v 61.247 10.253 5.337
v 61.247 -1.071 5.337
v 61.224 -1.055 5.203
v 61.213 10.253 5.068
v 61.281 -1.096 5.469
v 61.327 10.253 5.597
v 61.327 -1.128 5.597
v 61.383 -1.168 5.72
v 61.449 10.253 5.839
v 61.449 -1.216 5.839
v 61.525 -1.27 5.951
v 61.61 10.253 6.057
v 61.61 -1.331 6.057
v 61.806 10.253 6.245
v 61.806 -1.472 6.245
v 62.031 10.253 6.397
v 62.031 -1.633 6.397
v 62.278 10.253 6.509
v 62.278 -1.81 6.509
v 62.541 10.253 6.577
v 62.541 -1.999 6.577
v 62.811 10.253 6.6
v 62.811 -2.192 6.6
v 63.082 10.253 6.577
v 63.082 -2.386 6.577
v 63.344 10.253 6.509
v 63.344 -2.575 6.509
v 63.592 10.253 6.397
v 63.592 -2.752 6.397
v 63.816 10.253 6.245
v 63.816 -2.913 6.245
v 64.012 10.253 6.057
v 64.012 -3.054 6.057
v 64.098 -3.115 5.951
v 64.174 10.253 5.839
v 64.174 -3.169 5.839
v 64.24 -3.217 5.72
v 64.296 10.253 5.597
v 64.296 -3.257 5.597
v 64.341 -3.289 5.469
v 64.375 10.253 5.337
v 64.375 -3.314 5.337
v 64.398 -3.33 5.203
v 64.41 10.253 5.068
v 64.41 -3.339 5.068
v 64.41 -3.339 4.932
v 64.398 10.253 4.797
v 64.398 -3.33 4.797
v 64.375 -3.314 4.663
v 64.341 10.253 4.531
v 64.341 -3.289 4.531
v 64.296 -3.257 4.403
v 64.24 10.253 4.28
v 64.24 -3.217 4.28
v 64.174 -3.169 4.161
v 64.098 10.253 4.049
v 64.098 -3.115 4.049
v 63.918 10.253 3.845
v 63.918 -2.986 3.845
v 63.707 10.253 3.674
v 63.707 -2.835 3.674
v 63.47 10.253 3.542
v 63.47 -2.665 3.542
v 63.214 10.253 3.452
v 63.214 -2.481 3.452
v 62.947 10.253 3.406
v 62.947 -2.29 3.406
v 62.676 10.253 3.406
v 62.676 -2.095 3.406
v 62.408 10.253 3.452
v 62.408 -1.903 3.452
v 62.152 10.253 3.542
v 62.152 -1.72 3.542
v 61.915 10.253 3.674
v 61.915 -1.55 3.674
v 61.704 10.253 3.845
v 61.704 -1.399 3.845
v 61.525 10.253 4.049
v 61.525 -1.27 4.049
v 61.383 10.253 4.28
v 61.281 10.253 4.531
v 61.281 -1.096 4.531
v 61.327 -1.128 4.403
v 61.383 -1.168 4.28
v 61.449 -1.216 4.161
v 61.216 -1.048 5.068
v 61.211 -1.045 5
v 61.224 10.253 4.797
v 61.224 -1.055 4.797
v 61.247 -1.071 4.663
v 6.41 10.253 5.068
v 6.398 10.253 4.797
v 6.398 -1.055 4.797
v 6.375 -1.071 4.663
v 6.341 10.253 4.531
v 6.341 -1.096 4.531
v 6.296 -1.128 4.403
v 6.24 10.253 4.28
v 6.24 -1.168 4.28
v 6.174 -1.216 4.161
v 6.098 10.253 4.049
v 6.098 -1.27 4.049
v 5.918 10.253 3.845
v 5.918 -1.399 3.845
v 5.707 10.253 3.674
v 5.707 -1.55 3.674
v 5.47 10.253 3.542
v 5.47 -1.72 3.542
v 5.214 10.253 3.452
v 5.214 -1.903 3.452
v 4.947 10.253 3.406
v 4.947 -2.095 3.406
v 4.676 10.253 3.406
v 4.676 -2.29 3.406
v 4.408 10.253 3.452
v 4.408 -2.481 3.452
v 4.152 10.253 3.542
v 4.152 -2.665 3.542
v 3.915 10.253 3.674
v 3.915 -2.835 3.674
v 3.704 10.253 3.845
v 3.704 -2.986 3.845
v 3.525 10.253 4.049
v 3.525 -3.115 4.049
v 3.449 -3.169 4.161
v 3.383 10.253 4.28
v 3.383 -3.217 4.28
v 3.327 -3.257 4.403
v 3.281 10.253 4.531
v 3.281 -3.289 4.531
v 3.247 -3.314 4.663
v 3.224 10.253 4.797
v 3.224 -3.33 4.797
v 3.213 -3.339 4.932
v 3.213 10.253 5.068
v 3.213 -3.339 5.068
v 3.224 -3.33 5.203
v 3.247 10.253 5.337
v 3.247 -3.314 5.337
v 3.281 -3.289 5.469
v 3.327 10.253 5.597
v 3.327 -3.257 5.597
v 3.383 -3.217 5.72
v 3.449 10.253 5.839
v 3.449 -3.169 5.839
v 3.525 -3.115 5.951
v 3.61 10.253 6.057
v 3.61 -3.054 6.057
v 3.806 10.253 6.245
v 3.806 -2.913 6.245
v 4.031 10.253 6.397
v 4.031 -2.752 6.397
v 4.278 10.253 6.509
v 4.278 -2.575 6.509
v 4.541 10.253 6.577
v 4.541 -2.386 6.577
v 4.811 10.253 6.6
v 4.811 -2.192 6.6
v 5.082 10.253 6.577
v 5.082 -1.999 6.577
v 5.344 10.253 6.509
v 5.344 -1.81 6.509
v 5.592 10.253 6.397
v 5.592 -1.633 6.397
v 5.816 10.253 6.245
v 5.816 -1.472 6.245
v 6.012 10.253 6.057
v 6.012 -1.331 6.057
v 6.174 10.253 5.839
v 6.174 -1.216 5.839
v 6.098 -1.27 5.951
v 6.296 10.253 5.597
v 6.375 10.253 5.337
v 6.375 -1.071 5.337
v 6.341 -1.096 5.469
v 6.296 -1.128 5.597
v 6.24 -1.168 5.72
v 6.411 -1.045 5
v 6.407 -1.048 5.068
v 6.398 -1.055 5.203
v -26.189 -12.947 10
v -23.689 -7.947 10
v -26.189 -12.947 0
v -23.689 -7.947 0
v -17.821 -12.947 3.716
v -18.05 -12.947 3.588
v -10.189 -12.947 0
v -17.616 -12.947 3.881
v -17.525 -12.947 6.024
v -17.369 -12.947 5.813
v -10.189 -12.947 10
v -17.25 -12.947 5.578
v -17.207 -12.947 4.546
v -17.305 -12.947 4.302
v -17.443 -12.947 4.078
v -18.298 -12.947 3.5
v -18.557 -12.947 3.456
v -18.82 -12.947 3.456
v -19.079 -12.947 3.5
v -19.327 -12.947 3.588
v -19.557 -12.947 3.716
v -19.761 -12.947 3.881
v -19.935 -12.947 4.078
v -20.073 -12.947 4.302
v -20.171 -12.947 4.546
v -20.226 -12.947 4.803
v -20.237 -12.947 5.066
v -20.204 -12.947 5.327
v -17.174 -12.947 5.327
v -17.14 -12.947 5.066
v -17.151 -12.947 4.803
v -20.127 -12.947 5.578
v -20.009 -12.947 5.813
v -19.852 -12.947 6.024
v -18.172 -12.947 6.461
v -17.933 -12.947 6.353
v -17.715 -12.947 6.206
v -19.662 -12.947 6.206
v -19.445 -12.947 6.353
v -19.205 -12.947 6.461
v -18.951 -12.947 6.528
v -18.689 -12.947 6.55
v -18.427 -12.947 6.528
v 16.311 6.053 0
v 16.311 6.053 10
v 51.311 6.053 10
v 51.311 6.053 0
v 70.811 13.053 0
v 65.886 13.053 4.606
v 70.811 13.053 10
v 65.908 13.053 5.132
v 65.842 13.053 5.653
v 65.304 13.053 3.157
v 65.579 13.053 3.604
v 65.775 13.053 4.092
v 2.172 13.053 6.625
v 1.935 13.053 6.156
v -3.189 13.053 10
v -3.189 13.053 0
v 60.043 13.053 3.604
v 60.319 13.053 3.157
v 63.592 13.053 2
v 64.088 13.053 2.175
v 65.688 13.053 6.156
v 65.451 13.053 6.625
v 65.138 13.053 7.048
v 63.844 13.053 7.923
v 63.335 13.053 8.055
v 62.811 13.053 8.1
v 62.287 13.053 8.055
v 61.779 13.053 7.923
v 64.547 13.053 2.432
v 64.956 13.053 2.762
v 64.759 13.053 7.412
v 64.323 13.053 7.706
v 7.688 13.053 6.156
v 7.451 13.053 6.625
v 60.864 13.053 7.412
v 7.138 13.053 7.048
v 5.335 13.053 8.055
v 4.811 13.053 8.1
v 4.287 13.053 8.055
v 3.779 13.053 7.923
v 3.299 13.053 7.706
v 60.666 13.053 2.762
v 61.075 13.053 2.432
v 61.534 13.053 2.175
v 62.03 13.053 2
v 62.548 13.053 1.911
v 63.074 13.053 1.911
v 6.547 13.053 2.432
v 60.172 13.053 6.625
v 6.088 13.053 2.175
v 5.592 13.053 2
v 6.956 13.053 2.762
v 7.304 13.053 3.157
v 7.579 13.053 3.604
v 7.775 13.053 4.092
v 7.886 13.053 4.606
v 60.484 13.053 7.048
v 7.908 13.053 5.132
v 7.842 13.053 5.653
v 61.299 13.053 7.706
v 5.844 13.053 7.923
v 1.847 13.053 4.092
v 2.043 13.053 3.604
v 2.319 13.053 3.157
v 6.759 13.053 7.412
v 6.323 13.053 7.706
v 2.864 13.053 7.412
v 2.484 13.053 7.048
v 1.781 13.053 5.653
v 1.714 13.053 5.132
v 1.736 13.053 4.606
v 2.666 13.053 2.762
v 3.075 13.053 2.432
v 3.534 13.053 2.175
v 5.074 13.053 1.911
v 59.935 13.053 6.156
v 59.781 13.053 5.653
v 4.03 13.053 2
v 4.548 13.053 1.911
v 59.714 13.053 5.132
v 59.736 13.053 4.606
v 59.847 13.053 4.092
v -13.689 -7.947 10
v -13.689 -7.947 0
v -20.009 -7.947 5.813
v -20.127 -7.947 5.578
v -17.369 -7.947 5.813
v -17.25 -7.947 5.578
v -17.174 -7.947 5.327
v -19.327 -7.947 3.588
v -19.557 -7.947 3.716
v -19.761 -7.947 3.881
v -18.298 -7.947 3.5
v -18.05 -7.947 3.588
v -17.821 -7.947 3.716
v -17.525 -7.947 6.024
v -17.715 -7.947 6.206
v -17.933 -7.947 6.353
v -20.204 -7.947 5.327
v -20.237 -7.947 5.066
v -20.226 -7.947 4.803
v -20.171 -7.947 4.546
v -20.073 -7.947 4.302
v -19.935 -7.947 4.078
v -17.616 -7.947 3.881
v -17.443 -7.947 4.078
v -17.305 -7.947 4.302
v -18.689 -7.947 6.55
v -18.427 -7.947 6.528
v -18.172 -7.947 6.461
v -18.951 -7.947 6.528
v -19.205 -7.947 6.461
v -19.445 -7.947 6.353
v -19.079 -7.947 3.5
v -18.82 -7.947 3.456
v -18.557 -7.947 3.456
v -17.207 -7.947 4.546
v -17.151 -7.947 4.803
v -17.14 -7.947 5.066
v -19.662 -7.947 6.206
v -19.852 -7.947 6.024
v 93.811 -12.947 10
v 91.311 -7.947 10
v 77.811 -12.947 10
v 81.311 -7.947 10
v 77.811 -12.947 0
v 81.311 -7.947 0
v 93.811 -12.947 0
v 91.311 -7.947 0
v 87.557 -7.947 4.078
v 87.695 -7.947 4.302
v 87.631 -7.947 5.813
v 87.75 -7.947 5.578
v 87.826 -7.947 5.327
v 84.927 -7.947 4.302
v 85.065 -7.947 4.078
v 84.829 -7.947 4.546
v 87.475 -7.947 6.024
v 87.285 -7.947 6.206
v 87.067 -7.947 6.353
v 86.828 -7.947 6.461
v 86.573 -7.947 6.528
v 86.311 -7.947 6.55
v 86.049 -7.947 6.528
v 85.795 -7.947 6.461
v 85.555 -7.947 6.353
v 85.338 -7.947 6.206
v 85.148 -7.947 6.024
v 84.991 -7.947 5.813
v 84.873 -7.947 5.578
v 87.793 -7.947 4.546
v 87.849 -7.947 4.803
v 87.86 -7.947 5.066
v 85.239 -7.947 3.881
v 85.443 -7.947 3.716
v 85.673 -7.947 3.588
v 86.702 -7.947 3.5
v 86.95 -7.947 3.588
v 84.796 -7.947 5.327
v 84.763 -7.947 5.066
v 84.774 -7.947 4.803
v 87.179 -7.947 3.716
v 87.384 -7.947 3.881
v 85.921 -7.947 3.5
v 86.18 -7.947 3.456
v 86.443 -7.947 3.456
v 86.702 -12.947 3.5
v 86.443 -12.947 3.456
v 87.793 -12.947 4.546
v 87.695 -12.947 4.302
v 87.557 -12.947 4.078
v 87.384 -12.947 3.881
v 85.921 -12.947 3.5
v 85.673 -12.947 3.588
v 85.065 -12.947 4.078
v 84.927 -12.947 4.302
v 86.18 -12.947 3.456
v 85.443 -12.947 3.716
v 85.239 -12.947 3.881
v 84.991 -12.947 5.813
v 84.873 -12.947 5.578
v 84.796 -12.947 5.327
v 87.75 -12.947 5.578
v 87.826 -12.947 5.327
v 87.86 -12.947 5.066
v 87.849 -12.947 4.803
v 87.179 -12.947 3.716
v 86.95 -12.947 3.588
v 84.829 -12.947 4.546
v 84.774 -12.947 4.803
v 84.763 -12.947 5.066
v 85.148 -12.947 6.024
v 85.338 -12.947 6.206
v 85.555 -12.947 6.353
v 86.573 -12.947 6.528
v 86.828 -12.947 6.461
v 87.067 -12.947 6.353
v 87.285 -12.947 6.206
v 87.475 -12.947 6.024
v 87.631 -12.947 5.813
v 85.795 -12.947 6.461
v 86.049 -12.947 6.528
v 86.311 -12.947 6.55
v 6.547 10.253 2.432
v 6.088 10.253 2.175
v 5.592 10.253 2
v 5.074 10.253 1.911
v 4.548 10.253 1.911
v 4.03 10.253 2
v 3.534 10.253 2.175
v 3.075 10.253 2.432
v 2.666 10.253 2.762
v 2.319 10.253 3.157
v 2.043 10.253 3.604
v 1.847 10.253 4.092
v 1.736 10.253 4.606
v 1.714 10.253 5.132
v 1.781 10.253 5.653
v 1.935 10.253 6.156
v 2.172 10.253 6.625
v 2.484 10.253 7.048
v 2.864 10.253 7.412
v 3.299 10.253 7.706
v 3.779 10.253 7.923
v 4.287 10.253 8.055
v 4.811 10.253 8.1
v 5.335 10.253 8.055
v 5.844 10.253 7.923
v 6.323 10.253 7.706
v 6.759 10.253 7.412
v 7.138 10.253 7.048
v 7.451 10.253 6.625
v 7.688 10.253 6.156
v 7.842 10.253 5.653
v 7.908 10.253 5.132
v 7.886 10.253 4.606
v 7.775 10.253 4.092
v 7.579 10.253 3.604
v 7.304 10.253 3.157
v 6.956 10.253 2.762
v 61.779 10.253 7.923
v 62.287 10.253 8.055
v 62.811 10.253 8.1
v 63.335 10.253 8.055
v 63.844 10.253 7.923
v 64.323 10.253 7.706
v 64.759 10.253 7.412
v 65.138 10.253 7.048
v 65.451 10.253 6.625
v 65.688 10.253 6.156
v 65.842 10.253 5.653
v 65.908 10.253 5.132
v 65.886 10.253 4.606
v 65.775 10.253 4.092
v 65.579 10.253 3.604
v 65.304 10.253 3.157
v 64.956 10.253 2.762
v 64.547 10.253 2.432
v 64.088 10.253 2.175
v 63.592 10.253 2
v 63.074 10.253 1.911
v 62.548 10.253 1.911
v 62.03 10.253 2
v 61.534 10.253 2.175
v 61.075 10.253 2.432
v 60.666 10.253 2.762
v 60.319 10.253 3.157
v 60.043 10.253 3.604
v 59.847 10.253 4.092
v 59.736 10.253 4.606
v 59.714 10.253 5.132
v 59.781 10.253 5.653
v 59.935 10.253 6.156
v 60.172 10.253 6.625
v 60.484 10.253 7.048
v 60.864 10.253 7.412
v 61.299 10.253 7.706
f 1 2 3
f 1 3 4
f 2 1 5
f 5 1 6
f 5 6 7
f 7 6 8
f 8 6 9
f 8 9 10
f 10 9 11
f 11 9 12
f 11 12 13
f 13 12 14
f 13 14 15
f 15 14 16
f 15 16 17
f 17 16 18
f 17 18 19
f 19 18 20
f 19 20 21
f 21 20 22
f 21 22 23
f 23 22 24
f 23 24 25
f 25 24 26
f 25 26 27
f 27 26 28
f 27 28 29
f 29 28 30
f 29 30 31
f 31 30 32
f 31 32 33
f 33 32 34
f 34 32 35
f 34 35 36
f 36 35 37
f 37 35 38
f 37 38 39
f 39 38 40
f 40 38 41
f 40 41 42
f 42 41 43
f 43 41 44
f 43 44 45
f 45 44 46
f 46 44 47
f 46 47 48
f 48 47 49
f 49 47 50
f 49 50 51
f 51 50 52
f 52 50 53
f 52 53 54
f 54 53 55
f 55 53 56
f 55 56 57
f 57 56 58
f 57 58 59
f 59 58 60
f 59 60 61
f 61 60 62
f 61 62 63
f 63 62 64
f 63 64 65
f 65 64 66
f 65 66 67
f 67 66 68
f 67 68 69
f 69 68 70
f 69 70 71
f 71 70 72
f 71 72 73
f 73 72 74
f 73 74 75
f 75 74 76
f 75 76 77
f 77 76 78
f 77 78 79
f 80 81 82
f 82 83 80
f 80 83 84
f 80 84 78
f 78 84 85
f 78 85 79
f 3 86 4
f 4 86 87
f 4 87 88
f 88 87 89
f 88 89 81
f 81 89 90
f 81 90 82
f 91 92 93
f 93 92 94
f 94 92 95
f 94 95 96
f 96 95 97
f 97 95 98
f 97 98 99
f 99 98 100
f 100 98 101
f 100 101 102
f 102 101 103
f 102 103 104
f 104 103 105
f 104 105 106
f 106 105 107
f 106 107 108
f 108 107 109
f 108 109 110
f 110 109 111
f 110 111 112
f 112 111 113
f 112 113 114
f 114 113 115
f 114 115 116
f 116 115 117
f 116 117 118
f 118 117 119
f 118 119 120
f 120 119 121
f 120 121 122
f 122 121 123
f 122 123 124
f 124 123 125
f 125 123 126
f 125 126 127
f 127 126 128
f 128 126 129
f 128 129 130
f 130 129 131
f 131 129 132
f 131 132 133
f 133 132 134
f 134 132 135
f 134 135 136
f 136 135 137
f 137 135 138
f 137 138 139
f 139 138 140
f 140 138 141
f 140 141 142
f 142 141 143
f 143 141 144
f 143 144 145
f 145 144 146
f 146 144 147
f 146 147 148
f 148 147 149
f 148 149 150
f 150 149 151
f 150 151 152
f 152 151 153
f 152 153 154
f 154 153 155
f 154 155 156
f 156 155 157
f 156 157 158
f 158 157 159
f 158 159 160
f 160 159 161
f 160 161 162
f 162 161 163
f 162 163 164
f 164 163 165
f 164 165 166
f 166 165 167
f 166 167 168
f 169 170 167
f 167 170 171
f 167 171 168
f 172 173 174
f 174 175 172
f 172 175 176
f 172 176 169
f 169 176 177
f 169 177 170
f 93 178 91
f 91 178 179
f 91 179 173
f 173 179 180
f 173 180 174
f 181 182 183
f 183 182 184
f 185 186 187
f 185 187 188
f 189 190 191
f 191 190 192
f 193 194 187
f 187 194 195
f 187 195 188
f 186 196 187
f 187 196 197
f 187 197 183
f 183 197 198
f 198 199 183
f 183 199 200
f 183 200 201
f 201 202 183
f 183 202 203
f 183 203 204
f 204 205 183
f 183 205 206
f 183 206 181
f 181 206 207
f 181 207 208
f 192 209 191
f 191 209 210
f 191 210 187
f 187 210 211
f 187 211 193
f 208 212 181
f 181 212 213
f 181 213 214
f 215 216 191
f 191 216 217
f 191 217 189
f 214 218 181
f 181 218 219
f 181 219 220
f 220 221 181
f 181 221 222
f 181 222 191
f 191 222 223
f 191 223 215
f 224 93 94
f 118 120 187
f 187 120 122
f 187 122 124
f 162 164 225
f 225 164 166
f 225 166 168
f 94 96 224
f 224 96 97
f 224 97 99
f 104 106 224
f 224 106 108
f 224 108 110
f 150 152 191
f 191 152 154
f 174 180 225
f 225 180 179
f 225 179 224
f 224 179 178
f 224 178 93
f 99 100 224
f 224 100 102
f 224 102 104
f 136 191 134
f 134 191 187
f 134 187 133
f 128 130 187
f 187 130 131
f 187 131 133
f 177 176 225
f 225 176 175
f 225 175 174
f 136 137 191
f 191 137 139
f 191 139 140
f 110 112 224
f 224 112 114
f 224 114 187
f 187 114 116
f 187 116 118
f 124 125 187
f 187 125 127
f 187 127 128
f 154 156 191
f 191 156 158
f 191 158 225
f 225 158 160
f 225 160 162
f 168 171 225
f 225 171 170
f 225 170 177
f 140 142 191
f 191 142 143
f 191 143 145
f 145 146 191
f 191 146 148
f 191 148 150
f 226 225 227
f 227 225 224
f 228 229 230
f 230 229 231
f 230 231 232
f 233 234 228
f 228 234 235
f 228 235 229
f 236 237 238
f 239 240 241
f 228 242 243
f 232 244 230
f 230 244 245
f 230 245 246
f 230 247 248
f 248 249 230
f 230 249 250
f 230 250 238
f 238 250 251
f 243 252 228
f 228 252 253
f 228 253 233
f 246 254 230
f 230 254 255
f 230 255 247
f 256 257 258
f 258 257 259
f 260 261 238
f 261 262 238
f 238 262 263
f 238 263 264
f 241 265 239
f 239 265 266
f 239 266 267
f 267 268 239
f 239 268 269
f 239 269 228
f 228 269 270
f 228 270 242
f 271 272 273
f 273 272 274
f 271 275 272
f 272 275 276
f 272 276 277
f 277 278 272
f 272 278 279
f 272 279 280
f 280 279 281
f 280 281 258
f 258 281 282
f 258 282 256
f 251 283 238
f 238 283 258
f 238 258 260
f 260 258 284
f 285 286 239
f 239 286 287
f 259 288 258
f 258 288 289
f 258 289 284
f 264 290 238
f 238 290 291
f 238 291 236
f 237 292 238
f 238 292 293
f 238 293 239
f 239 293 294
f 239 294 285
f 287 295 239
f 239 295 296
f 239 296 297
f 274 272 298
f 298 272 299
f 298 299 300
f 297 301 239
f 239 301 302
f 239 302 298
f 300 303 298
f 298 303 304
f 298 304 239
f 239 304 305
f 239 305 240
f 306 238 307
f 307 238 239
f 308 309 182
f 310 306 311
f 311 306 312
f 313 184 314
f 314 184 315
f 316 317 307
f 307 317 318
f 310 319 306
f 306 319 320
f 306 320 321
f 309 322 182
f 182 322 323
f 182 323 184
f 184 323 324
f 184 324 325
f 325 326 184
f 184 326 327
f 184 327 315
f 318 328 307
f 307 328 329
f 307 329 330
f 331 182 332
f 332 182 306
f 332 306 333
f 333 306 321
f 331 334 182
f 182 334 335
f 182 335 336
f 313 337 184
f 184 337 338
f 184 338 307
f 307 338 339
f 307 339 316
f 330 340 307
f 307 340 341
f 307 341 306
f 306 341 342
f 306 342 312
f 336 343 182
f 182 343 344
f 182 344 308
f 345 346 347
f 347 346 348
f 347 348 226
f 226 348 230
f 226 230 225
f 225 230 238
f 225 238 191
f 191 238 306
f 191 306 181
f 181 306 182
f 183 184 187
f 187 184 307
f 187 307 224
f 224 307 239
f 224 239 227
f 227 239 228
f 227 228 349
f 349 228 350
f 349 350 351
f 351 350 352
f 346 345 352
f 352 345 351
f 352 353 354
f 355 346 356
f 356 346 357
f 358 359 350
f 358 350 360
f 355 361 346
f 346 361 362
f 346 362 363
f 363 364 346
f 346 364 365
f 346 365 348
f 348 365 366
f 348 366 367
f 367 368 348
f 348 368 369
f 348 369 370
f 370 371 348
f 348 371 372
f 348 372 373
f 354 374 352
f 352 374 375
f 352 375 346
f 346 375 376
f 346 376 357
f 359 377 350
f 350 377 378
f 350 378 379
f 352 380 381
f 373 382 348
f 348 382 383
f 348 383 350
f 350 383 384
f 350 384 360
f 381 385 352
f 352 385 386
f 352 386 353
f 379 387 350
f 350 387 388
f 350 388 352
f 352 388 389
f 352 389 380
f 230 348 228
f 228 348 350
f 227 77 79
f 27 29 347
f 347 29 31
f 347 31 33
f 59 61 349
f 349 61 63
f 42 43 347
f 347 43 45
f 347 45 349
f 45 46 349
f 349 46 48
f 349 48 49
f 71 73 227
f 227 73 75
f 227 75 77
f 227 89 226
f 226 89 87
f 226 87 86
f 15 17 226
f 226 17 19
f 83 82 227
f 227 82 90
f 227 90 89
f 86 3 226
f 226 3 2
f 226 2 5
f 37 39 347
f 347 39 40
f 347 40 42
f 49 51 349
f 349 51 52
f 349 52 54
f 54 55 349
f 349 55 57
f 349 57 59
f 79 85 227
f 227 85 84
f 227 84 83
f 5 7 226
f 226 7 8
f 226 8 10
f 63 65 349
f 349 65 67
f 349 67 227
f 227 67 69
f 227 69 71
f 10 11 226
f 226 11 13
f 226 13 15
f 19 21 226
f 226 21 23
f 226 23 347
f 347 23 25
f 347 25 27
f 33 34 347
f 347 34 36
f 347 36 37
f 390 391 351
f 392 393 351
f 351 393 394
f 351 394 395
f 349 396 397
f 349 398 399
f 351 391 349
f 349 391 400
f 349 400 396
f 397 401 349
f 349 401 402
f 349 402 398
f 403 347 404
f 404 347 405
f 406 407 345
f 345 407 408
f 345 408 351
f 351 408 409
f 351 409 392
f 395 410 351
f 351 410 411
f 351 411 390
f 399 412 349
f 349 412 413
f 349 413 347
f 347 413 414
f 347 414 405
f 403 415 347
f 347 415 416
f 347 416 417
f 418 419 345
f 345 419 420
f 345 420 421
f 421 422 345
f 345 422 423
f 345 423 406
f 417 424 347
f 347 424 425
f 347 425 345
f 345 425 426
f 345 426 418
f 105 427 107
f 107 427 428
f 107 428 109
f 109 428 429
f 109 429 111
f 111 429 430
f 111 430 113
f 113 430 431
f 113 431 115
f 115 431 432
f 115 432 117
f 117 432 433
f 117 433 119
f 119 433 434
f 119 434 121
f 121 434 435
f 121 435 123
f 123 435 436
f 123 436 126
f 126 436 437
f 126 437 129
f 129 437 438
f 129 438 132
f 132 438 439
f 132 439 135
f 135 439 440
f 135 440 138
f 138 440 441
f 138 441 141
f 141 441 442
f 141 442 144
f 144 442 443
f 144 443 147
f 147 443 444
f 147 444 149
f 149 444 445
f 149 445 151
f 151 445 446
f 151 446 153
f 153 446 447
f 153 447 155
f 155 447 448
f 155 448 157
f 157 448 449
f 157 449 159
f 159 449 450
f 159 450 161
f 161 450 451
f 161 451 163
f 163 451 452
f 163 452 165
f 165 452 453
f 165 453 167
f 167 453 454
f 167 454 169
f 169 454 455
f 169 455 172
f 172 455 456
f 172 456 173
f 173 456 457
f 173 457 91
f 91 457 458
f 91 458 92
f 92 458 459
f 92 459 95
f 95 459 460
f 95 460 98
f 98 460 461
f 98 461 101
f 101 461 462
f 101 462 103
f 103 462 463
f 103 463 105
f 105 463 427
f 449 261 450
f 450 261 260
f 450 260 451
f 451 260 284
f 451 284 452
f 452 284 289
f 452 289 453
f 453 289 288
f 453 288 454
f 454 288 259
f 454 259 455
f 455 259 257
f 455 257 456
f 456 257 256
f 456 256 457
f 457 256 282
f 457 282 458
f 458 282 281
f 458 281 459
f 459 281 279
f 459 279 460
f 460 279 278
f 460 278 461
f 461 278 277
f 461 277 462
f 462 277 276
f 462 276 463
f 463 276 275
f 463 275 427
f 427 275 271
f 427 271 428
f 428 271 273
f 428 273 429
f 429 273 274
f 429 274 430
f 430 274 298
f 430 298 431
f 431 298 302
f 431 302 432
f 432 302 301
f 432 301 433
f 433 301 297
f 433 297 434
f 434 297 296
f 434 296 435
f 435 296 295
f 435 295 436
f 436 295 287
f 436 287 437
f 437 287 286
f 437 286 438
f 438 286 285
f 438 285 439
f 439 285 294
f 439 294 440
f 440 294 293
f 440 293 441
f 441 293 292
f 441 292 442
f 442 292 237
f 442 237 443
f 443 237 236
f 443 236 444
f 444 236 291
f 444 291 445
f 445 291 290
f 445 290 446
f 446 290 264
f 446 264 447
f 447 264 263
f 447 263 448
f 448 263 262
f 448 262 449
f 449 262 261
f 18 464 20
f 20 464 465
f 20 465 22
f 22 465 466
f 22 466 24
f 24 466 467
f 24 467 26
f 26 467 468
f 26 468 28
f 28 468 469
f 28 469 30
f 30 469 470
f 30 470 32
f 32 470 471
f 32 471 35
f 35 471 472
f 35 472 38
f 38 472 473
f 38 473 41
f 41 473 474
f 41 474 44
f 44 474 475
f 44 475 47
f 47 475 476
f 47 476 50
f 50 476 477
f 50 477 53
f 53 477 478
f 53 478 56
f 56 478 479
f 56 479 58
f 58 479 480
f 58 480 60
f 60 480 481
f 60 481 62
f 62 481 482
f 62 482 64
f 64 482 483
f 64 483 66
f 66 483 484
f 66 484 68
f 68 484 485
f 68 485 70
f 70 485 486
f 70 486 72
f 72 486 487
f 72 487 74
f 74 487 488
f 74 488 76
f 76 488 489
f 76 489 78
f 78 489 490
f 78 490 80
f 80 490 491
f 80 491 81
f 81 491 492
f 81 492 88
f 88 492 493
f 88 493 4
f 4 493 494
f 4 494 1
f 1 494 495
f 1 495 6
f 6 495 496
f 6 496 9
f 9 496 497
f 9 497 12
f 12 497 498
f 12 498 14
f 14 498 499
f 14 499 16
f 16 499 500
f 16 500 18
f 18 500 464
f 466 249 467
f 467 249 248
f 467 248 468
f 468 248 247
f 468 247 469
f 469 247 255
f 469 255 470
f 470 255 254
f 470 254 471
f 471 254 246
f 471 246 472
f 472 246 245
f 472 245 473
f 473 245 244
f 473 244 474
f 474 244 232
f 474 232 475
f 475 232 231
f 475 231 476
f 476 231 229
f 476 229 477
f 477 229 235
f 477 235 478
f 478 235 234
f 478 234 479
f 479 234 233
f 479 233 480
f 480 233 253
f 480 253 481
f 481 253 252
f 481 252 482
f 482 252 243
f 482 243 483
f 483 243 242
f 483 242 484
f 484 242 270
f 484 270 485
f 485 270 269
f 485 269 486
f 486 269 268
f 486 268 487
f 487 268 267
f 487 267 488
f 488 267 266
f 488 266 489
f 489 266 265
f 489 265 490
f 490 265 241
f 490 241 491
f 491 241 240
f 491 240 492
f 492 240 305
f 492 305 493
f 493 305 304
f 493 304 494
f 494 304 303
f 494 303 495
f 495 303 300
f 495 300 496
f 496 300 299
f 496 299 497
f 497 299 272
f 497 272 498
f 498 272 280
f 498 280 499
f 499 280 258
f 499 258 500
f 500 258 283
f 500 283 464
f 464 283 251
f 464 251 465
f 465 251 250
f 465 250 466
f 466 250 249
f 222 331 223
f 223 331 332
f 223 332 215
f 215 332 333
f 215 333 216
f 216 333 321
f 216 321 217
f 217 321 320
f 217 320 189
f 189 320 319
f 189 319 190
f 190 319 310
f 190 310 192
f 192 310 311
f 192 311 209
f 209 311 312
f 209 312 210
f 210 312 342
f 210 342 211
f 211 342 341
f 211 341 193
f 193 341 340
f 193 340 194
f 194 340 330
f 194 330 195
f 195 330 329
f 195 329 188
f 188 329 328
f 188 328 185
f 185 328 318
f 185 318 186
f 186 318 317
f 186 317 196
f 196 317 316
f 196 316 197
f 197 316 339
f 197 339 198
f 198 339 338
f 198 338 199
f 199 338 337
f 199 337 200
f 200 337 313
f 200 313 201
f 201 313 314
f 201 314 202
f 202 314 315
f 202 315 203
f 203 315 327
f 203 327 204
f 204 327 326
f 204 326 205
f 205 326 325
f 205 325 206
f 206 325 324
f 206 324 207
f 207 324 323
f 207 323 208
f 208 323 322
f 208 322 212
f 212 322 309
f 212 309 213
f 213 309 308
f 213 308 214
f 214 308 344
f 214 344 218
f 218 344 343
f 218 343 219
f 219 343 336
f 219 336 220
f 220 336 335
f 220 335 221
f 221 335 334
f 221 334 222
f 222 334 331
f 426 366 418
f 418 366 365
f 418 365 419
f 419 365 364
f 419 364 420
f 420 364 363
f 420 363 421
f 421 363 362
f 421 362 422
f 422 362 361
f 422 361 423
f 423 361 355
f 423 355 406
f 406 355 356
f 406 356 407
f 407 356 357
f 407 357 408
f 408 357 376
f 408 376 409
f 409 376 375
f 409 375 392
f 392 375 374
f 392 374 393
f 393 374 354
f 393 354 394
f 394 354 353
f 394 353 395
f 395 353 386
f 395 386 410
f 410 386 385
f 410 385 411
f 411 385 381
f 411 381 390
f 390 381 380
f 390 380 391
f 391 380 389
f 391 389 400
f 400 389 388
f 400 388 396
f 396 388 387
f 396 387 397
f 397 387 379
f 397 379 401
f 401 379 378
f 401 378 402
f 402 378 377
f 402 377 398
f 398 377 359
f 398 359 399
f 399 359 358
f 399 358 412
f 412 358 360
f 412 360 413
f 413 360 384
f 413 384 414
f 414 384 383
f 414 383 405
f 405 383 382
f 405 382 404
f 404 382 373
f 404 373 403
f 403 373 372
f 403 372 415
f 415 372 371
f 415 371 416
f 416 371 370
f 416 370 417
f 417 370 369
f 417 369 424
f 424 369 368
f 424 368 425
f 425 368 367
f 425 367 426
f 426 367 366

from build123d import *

# Parameters (mm, degrees)
EXTRUDE_1_DEPTH     = 10
SKETCH_2_R          = 1.6
CUT_EXTRUDE_2_DEPTH = 27
SKETCH_3_R          = 3.1
CUT_EXTRUDE_3_DEPTH = 2.8
SKETCH_5_R          = 1.55
CUT_EXTRUDE_4_DEPTH = 6


with BuildPart() as part:
    # 草图1 → 凸台-拉伸1 (new body)
    with BuildSketch(Plane.XY):
        Polygon((-3.188712924, 13.052848472), (33.811287076, 13.052848472), (33.811287076, 6.052848472), (16.311287076, 6.052848472), (-10.188712924, -12.947151528), (-26.188712924, -12.947151528), (-23.688712924, -7.947151528), (-13.688712924, -7.947151528), align=None)
    extrude_1 = extrude(amount=EXTRUDE_1_DEPTH)

    # 镜向1: 凸台-拉伸1 across plane
    add(extrude_1.mirror(Plane(origin=(33.811287076, 13.052848472, 10), x_dir=(0, 0, 1), z_dir=(-1, 0, 0))))

    # 草图2 → 切除-拉伸2 (cut, through all)
    with BuildSketch(Plane(origin=(0, 13.052848472, 0), x_dir=(1, 0, 0), z_dir=(0, 1, 0))):
        with Locations((4.811287076, -5)):
            Circle(SKETCH_2_R)
        with Locations((62.811287076, -5)):
            Circle(SKETCH_2_R)
    extrude(amount=-CUT_EXTRUDE_2_DEPTH, mode=Mode.SUBTRACT)

    # 草图3 → 切除-拉伸3 (cut)
    with BuildSketch(Plane(origin=(0, 13.052848472, 0), x_dir=(1, 0, 0), z_dir=(0, 1, 0))):
        with Locations((4.811287076, -5)):
            Circle(SKETCH_3_R)
        with Locations((62.811287076, -5)):
            Circle(SKETCH_3_R)
    extrude(amount=-CUT_EXTRUDE_3_DEPTH, mode=Mode.SUBTRACT)

    # 草图5 → 切除-拉伸4 (cut, through all)
    with BuildSketch(Plane(origin=(0, -7.947151528, 0), x_dir=(1, 0, 0), z_dir=(0, 1, 0))):
        with Locations((-18.688712924, -5)):
            Circle(SKETCH_5_R)
        with Locations((86.311287076, -5)):
            Circle(SKETCH_5_R)
    extrude(amount=-CUT_EXTRUDE_4_DEPTH, mode=Mode.SUBTRACT)


solid = part.part
